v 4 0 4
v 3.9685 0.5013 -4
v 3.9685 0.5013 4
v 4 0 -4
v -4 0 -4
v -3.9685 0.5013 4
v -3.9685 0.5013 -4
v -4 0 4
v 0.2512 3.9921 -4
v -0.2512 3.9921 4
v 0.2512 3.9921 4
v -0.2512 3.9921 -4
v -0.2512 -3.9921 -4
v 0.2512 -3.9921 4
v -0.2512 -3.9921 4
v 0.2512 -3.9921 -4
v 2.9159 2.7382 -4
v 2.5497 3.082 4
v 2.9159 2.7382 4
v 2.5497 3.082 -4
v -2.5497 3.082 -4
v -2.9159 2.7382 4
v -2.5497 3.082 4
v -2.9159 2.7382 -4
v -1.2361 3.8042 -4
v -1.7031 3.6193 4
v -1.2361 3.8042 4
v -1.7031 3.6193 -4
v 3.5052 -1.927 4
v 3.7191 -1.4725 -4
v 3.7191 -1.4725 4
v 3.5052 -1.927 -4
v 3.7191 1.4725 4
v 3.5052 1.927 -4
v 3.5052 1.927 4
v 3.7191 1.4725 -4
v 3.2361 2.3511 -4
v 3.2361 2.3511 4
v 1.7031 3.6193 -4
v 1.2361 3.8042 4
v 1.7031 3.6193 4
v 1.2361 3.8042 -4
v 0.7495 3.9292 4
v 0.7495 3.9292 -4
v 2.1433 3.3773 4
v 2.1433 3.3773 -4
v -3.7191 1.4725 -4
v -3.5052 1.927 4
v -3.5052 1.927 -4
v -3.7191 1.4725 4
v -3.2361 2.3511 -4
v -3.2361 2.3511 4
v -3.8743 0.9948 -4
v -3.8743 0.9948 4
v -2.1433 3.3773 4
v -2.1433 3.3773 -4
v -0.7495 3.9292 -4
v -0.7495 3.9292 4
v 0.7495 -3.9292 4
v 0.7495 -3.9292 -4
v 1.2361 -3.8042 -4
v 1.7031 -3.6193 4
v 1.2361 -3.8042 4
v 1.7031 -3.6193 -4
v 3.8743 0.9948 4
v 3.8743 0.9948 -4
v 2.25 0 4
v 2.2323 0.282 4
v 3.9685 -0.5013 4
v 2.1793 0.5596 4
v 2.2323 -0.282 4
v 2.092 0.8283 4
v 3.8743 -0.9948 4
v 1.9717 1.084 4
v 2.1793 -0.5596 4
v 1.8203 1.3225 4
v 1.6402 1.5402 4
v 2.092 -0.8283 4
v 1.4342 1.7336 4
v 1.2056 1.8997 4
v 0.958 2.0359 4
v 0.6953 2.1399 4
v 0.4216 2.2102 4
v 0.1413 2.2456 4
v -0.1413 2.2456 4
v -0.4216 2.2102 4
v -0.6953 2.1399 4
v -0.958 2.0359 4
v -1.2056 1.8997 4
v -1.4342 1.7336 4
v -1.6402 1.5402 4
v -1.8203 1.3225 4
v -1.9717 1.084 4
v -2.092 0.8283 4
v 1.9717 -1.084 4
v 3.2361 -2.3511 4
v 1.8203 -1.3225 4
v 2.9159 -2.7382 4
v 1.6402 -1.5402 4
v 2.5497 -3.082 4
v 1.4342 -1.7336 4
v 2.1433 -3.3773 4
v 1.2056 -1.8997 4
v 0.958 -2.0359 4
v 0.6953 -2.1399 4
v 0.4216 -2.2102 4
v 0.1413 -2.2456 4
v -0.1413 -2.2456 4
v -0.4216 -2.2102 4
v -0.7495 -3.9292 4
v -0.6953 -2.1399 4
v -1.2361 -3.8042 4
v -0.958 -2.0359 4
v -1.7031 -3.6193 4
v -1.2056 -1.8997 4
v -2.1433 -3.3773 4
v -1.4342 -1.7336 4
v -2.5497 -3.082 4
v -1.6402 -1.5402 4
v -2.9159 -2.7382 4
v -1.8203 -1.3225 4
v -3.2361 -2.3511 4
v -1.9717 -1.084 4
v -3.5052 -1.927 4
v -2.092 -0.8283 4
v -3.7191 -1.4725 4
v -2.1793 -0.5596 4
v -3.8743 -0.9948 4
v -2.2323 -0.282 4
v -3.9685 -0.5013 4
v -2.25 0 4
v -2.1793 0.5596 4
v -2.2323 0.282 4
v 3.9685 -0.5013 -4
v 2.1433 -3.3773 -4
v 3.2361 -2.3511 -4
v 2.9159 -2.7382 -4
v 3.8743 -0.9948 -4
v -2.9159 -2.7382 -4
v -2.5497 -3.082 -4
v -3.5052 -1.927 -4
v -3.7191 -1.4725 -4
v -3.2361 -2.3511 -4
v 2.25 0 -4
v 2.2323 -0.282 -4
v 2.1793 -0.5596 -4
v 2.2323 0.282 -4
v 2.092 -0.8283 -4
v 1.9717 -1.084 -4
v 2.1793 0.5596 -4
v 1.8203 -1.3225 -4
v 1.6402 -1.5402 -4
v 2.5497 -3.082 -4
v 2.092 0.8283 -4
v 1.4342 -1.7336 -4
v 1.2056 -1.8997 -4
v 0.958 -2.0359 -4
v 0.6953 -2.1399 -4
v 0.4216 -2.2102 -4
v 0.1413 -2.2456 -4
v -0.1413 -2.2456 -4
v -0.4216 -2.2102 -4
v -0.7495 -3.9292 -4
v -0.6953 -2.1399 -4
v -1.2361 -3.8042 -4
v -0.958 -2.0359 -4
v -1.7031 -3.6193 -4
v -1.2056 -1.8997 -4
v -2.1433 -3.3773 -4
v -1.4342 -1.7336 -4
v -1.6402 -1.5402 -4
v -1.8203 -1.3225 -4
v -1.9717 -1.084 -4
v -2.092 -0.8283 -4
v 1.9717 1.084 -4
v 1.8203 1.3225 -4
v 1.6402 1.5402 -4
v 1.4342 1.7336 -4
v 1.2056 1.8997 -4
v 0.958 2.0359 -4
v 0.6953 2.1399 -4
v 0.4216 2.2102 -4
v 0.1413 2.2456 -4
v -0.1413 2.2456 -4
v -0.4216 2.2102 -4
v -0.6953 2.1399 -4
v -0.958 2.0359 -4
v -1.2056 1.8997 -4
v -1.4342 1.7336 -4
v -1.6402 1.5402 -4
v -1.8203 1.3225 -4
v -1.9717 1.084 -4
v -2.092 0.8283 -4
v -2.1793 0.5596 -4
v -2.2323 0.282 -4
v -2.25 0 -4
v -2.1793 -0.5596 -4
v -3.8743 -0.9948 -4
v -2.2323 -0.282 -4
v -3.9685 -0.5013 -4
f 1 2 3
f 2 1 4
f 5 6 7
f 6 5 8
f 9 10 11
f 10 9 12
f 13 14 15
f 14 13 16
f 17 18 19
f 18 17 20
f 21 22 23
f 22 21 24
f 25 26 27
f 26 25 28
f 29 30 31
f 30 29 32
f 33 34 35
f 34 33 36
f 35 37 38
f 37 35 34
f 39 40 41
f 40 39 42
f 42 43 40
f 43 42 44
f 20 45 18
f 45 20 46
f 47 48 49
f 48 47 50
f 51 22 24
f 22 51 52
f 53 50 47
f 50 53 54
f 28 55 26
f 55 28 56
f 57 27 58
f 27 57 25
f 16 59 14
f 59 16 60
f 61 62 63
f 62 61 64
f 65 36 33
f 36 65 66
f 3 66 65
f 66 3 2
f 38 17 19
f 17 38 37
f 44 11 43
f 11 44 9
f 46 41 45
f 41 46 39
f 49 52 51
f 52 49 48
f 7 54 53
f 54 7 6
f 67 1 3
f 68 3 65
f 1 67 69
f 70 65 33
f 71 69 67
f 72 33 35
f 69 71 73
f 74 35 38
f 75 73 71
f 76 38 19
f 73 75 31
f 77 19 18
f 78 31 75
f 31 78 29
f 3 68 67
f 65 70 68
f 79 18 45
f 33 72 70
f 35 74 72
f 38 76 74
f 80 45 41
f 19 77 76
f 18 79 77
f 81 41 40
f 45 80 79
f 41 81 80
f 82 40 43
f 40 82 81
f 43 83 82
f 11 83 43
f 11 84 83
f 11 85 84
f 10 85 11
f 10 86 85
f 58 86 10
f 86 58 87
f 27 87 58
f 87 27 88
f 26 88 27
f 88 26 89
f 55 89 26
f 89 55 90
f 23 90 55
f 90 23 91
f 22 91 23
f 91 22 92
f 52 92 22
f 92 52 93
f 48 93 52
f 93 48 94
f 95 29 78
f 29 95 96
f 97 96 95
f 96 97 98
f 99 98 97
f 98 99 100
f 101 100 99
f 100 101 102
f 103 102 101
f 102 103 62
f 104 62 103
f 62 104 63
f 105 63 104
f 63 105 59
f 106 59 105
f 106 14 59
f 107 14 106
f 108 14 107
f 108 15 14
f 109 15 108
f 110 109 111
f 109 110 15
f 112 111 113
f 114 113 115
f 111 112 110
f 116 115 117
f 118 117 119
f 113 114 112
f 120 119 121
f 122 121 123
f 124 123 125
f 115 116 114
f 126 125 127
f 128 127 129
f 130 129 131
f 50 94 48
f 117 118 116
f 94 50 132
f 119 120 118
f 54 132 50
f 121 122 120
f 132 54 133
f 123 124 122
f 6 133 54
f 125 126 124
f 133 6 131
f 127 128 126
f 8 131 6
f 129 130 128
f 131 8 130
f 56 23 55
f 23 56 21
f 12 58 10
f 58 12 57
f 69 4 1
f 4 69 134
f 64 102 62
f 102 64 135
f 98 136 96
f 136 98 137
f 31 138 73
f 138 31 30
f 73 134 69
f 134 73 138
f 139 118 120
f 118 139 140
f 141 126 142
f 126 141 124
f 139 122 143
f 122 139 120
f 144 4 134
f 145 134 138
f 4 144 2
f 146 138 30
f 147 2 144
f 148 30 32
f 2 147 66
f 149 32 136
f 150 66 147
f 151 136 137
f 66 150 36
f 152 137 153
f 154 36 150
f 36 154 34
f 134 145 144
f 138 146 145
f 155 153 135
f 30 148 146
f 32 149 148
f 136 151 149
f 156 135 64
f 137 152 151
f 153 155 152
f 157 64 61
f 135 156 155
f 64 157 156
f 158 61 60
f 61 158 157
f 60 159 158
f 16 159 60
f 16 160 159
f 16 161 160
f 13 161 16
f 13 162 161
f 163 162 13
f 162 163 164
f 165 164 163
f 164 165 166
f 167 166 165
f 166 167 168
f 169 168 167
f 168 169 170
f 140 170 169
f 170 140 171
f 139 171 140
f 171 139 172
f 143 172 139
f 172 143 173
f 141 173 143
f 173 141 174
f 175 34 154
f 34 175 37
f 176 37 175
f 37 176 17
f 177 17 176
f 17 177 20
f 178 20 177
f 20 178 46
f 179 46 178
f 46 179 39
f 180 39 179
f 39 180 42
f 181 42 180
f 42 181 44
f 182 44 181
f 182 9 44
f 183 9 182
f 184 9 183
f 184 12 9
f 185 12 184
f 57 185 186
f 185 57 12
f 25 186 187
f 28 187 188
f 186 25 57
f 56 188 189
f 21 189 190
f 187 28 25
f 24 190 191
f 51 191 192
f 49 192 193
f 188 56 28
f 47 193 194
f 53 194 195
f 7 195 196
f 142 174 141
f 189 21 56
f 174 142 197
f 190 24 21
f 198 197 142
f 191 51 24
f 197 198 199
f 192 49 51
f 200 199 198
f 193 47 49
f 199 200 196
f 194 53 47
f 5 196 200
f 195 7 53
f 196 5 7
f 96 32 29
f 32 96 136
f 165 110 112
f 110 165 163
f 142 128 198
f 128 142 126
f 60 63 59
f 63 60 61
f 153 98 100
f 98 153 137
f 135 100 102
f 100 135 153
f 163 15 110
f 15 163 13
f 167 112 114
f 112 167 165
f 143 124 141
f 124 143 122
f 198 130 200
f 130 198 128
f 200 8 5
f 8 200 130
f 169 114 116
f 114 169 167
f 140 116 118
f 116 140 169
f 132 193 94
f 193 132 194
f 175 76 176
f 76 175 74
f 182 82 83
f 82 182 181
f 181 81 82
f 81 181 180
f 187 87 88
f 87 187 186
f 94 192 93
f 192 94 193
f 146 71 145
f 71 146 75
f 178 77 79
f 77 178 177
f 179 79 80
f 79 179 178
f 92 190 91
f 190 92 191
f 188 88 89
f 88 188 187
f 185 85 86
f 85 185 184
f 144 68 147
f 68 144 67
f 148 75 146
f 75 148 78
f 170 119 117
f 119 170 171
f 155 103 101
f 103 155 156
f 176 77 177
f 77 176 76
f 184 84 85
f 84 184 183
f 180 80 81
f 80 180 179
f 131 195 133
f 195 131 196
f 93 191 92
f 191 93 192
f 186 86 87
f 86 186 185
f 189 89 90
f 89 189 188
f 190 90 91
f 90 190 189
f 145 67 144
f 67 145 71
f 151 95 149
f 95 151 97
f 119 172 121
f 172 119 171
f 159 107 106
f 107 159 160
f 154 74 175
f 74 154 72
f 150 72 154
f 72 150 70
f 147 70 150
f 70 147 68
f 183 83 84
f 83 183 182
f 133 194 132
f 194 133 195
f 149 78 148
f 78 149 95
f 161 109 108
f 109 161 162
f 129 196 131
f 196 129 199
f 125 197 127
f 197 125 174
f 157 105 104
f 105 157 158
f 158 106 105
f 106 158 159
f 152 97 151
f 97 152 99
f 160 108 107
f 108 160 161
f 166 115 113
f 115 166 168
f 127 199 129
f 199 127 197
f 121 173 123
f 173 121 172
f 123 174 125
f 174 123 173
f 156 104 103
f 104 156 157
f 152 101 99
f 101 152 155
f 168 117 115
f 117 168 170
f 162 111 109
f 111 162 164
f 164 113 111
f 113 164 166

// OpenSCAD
$fn = 50;


difference() {
	union() {
		translate(v = [0, 0, -4.0000000000]) {
			cylinder(h = 8, r = 4.0000000000);
		}
	}
	union() {
		translate(v = [0, 0, -100.0000000000]) {
			cylinder(h = 200, r = 2.2500000000);
		}
	}
}
